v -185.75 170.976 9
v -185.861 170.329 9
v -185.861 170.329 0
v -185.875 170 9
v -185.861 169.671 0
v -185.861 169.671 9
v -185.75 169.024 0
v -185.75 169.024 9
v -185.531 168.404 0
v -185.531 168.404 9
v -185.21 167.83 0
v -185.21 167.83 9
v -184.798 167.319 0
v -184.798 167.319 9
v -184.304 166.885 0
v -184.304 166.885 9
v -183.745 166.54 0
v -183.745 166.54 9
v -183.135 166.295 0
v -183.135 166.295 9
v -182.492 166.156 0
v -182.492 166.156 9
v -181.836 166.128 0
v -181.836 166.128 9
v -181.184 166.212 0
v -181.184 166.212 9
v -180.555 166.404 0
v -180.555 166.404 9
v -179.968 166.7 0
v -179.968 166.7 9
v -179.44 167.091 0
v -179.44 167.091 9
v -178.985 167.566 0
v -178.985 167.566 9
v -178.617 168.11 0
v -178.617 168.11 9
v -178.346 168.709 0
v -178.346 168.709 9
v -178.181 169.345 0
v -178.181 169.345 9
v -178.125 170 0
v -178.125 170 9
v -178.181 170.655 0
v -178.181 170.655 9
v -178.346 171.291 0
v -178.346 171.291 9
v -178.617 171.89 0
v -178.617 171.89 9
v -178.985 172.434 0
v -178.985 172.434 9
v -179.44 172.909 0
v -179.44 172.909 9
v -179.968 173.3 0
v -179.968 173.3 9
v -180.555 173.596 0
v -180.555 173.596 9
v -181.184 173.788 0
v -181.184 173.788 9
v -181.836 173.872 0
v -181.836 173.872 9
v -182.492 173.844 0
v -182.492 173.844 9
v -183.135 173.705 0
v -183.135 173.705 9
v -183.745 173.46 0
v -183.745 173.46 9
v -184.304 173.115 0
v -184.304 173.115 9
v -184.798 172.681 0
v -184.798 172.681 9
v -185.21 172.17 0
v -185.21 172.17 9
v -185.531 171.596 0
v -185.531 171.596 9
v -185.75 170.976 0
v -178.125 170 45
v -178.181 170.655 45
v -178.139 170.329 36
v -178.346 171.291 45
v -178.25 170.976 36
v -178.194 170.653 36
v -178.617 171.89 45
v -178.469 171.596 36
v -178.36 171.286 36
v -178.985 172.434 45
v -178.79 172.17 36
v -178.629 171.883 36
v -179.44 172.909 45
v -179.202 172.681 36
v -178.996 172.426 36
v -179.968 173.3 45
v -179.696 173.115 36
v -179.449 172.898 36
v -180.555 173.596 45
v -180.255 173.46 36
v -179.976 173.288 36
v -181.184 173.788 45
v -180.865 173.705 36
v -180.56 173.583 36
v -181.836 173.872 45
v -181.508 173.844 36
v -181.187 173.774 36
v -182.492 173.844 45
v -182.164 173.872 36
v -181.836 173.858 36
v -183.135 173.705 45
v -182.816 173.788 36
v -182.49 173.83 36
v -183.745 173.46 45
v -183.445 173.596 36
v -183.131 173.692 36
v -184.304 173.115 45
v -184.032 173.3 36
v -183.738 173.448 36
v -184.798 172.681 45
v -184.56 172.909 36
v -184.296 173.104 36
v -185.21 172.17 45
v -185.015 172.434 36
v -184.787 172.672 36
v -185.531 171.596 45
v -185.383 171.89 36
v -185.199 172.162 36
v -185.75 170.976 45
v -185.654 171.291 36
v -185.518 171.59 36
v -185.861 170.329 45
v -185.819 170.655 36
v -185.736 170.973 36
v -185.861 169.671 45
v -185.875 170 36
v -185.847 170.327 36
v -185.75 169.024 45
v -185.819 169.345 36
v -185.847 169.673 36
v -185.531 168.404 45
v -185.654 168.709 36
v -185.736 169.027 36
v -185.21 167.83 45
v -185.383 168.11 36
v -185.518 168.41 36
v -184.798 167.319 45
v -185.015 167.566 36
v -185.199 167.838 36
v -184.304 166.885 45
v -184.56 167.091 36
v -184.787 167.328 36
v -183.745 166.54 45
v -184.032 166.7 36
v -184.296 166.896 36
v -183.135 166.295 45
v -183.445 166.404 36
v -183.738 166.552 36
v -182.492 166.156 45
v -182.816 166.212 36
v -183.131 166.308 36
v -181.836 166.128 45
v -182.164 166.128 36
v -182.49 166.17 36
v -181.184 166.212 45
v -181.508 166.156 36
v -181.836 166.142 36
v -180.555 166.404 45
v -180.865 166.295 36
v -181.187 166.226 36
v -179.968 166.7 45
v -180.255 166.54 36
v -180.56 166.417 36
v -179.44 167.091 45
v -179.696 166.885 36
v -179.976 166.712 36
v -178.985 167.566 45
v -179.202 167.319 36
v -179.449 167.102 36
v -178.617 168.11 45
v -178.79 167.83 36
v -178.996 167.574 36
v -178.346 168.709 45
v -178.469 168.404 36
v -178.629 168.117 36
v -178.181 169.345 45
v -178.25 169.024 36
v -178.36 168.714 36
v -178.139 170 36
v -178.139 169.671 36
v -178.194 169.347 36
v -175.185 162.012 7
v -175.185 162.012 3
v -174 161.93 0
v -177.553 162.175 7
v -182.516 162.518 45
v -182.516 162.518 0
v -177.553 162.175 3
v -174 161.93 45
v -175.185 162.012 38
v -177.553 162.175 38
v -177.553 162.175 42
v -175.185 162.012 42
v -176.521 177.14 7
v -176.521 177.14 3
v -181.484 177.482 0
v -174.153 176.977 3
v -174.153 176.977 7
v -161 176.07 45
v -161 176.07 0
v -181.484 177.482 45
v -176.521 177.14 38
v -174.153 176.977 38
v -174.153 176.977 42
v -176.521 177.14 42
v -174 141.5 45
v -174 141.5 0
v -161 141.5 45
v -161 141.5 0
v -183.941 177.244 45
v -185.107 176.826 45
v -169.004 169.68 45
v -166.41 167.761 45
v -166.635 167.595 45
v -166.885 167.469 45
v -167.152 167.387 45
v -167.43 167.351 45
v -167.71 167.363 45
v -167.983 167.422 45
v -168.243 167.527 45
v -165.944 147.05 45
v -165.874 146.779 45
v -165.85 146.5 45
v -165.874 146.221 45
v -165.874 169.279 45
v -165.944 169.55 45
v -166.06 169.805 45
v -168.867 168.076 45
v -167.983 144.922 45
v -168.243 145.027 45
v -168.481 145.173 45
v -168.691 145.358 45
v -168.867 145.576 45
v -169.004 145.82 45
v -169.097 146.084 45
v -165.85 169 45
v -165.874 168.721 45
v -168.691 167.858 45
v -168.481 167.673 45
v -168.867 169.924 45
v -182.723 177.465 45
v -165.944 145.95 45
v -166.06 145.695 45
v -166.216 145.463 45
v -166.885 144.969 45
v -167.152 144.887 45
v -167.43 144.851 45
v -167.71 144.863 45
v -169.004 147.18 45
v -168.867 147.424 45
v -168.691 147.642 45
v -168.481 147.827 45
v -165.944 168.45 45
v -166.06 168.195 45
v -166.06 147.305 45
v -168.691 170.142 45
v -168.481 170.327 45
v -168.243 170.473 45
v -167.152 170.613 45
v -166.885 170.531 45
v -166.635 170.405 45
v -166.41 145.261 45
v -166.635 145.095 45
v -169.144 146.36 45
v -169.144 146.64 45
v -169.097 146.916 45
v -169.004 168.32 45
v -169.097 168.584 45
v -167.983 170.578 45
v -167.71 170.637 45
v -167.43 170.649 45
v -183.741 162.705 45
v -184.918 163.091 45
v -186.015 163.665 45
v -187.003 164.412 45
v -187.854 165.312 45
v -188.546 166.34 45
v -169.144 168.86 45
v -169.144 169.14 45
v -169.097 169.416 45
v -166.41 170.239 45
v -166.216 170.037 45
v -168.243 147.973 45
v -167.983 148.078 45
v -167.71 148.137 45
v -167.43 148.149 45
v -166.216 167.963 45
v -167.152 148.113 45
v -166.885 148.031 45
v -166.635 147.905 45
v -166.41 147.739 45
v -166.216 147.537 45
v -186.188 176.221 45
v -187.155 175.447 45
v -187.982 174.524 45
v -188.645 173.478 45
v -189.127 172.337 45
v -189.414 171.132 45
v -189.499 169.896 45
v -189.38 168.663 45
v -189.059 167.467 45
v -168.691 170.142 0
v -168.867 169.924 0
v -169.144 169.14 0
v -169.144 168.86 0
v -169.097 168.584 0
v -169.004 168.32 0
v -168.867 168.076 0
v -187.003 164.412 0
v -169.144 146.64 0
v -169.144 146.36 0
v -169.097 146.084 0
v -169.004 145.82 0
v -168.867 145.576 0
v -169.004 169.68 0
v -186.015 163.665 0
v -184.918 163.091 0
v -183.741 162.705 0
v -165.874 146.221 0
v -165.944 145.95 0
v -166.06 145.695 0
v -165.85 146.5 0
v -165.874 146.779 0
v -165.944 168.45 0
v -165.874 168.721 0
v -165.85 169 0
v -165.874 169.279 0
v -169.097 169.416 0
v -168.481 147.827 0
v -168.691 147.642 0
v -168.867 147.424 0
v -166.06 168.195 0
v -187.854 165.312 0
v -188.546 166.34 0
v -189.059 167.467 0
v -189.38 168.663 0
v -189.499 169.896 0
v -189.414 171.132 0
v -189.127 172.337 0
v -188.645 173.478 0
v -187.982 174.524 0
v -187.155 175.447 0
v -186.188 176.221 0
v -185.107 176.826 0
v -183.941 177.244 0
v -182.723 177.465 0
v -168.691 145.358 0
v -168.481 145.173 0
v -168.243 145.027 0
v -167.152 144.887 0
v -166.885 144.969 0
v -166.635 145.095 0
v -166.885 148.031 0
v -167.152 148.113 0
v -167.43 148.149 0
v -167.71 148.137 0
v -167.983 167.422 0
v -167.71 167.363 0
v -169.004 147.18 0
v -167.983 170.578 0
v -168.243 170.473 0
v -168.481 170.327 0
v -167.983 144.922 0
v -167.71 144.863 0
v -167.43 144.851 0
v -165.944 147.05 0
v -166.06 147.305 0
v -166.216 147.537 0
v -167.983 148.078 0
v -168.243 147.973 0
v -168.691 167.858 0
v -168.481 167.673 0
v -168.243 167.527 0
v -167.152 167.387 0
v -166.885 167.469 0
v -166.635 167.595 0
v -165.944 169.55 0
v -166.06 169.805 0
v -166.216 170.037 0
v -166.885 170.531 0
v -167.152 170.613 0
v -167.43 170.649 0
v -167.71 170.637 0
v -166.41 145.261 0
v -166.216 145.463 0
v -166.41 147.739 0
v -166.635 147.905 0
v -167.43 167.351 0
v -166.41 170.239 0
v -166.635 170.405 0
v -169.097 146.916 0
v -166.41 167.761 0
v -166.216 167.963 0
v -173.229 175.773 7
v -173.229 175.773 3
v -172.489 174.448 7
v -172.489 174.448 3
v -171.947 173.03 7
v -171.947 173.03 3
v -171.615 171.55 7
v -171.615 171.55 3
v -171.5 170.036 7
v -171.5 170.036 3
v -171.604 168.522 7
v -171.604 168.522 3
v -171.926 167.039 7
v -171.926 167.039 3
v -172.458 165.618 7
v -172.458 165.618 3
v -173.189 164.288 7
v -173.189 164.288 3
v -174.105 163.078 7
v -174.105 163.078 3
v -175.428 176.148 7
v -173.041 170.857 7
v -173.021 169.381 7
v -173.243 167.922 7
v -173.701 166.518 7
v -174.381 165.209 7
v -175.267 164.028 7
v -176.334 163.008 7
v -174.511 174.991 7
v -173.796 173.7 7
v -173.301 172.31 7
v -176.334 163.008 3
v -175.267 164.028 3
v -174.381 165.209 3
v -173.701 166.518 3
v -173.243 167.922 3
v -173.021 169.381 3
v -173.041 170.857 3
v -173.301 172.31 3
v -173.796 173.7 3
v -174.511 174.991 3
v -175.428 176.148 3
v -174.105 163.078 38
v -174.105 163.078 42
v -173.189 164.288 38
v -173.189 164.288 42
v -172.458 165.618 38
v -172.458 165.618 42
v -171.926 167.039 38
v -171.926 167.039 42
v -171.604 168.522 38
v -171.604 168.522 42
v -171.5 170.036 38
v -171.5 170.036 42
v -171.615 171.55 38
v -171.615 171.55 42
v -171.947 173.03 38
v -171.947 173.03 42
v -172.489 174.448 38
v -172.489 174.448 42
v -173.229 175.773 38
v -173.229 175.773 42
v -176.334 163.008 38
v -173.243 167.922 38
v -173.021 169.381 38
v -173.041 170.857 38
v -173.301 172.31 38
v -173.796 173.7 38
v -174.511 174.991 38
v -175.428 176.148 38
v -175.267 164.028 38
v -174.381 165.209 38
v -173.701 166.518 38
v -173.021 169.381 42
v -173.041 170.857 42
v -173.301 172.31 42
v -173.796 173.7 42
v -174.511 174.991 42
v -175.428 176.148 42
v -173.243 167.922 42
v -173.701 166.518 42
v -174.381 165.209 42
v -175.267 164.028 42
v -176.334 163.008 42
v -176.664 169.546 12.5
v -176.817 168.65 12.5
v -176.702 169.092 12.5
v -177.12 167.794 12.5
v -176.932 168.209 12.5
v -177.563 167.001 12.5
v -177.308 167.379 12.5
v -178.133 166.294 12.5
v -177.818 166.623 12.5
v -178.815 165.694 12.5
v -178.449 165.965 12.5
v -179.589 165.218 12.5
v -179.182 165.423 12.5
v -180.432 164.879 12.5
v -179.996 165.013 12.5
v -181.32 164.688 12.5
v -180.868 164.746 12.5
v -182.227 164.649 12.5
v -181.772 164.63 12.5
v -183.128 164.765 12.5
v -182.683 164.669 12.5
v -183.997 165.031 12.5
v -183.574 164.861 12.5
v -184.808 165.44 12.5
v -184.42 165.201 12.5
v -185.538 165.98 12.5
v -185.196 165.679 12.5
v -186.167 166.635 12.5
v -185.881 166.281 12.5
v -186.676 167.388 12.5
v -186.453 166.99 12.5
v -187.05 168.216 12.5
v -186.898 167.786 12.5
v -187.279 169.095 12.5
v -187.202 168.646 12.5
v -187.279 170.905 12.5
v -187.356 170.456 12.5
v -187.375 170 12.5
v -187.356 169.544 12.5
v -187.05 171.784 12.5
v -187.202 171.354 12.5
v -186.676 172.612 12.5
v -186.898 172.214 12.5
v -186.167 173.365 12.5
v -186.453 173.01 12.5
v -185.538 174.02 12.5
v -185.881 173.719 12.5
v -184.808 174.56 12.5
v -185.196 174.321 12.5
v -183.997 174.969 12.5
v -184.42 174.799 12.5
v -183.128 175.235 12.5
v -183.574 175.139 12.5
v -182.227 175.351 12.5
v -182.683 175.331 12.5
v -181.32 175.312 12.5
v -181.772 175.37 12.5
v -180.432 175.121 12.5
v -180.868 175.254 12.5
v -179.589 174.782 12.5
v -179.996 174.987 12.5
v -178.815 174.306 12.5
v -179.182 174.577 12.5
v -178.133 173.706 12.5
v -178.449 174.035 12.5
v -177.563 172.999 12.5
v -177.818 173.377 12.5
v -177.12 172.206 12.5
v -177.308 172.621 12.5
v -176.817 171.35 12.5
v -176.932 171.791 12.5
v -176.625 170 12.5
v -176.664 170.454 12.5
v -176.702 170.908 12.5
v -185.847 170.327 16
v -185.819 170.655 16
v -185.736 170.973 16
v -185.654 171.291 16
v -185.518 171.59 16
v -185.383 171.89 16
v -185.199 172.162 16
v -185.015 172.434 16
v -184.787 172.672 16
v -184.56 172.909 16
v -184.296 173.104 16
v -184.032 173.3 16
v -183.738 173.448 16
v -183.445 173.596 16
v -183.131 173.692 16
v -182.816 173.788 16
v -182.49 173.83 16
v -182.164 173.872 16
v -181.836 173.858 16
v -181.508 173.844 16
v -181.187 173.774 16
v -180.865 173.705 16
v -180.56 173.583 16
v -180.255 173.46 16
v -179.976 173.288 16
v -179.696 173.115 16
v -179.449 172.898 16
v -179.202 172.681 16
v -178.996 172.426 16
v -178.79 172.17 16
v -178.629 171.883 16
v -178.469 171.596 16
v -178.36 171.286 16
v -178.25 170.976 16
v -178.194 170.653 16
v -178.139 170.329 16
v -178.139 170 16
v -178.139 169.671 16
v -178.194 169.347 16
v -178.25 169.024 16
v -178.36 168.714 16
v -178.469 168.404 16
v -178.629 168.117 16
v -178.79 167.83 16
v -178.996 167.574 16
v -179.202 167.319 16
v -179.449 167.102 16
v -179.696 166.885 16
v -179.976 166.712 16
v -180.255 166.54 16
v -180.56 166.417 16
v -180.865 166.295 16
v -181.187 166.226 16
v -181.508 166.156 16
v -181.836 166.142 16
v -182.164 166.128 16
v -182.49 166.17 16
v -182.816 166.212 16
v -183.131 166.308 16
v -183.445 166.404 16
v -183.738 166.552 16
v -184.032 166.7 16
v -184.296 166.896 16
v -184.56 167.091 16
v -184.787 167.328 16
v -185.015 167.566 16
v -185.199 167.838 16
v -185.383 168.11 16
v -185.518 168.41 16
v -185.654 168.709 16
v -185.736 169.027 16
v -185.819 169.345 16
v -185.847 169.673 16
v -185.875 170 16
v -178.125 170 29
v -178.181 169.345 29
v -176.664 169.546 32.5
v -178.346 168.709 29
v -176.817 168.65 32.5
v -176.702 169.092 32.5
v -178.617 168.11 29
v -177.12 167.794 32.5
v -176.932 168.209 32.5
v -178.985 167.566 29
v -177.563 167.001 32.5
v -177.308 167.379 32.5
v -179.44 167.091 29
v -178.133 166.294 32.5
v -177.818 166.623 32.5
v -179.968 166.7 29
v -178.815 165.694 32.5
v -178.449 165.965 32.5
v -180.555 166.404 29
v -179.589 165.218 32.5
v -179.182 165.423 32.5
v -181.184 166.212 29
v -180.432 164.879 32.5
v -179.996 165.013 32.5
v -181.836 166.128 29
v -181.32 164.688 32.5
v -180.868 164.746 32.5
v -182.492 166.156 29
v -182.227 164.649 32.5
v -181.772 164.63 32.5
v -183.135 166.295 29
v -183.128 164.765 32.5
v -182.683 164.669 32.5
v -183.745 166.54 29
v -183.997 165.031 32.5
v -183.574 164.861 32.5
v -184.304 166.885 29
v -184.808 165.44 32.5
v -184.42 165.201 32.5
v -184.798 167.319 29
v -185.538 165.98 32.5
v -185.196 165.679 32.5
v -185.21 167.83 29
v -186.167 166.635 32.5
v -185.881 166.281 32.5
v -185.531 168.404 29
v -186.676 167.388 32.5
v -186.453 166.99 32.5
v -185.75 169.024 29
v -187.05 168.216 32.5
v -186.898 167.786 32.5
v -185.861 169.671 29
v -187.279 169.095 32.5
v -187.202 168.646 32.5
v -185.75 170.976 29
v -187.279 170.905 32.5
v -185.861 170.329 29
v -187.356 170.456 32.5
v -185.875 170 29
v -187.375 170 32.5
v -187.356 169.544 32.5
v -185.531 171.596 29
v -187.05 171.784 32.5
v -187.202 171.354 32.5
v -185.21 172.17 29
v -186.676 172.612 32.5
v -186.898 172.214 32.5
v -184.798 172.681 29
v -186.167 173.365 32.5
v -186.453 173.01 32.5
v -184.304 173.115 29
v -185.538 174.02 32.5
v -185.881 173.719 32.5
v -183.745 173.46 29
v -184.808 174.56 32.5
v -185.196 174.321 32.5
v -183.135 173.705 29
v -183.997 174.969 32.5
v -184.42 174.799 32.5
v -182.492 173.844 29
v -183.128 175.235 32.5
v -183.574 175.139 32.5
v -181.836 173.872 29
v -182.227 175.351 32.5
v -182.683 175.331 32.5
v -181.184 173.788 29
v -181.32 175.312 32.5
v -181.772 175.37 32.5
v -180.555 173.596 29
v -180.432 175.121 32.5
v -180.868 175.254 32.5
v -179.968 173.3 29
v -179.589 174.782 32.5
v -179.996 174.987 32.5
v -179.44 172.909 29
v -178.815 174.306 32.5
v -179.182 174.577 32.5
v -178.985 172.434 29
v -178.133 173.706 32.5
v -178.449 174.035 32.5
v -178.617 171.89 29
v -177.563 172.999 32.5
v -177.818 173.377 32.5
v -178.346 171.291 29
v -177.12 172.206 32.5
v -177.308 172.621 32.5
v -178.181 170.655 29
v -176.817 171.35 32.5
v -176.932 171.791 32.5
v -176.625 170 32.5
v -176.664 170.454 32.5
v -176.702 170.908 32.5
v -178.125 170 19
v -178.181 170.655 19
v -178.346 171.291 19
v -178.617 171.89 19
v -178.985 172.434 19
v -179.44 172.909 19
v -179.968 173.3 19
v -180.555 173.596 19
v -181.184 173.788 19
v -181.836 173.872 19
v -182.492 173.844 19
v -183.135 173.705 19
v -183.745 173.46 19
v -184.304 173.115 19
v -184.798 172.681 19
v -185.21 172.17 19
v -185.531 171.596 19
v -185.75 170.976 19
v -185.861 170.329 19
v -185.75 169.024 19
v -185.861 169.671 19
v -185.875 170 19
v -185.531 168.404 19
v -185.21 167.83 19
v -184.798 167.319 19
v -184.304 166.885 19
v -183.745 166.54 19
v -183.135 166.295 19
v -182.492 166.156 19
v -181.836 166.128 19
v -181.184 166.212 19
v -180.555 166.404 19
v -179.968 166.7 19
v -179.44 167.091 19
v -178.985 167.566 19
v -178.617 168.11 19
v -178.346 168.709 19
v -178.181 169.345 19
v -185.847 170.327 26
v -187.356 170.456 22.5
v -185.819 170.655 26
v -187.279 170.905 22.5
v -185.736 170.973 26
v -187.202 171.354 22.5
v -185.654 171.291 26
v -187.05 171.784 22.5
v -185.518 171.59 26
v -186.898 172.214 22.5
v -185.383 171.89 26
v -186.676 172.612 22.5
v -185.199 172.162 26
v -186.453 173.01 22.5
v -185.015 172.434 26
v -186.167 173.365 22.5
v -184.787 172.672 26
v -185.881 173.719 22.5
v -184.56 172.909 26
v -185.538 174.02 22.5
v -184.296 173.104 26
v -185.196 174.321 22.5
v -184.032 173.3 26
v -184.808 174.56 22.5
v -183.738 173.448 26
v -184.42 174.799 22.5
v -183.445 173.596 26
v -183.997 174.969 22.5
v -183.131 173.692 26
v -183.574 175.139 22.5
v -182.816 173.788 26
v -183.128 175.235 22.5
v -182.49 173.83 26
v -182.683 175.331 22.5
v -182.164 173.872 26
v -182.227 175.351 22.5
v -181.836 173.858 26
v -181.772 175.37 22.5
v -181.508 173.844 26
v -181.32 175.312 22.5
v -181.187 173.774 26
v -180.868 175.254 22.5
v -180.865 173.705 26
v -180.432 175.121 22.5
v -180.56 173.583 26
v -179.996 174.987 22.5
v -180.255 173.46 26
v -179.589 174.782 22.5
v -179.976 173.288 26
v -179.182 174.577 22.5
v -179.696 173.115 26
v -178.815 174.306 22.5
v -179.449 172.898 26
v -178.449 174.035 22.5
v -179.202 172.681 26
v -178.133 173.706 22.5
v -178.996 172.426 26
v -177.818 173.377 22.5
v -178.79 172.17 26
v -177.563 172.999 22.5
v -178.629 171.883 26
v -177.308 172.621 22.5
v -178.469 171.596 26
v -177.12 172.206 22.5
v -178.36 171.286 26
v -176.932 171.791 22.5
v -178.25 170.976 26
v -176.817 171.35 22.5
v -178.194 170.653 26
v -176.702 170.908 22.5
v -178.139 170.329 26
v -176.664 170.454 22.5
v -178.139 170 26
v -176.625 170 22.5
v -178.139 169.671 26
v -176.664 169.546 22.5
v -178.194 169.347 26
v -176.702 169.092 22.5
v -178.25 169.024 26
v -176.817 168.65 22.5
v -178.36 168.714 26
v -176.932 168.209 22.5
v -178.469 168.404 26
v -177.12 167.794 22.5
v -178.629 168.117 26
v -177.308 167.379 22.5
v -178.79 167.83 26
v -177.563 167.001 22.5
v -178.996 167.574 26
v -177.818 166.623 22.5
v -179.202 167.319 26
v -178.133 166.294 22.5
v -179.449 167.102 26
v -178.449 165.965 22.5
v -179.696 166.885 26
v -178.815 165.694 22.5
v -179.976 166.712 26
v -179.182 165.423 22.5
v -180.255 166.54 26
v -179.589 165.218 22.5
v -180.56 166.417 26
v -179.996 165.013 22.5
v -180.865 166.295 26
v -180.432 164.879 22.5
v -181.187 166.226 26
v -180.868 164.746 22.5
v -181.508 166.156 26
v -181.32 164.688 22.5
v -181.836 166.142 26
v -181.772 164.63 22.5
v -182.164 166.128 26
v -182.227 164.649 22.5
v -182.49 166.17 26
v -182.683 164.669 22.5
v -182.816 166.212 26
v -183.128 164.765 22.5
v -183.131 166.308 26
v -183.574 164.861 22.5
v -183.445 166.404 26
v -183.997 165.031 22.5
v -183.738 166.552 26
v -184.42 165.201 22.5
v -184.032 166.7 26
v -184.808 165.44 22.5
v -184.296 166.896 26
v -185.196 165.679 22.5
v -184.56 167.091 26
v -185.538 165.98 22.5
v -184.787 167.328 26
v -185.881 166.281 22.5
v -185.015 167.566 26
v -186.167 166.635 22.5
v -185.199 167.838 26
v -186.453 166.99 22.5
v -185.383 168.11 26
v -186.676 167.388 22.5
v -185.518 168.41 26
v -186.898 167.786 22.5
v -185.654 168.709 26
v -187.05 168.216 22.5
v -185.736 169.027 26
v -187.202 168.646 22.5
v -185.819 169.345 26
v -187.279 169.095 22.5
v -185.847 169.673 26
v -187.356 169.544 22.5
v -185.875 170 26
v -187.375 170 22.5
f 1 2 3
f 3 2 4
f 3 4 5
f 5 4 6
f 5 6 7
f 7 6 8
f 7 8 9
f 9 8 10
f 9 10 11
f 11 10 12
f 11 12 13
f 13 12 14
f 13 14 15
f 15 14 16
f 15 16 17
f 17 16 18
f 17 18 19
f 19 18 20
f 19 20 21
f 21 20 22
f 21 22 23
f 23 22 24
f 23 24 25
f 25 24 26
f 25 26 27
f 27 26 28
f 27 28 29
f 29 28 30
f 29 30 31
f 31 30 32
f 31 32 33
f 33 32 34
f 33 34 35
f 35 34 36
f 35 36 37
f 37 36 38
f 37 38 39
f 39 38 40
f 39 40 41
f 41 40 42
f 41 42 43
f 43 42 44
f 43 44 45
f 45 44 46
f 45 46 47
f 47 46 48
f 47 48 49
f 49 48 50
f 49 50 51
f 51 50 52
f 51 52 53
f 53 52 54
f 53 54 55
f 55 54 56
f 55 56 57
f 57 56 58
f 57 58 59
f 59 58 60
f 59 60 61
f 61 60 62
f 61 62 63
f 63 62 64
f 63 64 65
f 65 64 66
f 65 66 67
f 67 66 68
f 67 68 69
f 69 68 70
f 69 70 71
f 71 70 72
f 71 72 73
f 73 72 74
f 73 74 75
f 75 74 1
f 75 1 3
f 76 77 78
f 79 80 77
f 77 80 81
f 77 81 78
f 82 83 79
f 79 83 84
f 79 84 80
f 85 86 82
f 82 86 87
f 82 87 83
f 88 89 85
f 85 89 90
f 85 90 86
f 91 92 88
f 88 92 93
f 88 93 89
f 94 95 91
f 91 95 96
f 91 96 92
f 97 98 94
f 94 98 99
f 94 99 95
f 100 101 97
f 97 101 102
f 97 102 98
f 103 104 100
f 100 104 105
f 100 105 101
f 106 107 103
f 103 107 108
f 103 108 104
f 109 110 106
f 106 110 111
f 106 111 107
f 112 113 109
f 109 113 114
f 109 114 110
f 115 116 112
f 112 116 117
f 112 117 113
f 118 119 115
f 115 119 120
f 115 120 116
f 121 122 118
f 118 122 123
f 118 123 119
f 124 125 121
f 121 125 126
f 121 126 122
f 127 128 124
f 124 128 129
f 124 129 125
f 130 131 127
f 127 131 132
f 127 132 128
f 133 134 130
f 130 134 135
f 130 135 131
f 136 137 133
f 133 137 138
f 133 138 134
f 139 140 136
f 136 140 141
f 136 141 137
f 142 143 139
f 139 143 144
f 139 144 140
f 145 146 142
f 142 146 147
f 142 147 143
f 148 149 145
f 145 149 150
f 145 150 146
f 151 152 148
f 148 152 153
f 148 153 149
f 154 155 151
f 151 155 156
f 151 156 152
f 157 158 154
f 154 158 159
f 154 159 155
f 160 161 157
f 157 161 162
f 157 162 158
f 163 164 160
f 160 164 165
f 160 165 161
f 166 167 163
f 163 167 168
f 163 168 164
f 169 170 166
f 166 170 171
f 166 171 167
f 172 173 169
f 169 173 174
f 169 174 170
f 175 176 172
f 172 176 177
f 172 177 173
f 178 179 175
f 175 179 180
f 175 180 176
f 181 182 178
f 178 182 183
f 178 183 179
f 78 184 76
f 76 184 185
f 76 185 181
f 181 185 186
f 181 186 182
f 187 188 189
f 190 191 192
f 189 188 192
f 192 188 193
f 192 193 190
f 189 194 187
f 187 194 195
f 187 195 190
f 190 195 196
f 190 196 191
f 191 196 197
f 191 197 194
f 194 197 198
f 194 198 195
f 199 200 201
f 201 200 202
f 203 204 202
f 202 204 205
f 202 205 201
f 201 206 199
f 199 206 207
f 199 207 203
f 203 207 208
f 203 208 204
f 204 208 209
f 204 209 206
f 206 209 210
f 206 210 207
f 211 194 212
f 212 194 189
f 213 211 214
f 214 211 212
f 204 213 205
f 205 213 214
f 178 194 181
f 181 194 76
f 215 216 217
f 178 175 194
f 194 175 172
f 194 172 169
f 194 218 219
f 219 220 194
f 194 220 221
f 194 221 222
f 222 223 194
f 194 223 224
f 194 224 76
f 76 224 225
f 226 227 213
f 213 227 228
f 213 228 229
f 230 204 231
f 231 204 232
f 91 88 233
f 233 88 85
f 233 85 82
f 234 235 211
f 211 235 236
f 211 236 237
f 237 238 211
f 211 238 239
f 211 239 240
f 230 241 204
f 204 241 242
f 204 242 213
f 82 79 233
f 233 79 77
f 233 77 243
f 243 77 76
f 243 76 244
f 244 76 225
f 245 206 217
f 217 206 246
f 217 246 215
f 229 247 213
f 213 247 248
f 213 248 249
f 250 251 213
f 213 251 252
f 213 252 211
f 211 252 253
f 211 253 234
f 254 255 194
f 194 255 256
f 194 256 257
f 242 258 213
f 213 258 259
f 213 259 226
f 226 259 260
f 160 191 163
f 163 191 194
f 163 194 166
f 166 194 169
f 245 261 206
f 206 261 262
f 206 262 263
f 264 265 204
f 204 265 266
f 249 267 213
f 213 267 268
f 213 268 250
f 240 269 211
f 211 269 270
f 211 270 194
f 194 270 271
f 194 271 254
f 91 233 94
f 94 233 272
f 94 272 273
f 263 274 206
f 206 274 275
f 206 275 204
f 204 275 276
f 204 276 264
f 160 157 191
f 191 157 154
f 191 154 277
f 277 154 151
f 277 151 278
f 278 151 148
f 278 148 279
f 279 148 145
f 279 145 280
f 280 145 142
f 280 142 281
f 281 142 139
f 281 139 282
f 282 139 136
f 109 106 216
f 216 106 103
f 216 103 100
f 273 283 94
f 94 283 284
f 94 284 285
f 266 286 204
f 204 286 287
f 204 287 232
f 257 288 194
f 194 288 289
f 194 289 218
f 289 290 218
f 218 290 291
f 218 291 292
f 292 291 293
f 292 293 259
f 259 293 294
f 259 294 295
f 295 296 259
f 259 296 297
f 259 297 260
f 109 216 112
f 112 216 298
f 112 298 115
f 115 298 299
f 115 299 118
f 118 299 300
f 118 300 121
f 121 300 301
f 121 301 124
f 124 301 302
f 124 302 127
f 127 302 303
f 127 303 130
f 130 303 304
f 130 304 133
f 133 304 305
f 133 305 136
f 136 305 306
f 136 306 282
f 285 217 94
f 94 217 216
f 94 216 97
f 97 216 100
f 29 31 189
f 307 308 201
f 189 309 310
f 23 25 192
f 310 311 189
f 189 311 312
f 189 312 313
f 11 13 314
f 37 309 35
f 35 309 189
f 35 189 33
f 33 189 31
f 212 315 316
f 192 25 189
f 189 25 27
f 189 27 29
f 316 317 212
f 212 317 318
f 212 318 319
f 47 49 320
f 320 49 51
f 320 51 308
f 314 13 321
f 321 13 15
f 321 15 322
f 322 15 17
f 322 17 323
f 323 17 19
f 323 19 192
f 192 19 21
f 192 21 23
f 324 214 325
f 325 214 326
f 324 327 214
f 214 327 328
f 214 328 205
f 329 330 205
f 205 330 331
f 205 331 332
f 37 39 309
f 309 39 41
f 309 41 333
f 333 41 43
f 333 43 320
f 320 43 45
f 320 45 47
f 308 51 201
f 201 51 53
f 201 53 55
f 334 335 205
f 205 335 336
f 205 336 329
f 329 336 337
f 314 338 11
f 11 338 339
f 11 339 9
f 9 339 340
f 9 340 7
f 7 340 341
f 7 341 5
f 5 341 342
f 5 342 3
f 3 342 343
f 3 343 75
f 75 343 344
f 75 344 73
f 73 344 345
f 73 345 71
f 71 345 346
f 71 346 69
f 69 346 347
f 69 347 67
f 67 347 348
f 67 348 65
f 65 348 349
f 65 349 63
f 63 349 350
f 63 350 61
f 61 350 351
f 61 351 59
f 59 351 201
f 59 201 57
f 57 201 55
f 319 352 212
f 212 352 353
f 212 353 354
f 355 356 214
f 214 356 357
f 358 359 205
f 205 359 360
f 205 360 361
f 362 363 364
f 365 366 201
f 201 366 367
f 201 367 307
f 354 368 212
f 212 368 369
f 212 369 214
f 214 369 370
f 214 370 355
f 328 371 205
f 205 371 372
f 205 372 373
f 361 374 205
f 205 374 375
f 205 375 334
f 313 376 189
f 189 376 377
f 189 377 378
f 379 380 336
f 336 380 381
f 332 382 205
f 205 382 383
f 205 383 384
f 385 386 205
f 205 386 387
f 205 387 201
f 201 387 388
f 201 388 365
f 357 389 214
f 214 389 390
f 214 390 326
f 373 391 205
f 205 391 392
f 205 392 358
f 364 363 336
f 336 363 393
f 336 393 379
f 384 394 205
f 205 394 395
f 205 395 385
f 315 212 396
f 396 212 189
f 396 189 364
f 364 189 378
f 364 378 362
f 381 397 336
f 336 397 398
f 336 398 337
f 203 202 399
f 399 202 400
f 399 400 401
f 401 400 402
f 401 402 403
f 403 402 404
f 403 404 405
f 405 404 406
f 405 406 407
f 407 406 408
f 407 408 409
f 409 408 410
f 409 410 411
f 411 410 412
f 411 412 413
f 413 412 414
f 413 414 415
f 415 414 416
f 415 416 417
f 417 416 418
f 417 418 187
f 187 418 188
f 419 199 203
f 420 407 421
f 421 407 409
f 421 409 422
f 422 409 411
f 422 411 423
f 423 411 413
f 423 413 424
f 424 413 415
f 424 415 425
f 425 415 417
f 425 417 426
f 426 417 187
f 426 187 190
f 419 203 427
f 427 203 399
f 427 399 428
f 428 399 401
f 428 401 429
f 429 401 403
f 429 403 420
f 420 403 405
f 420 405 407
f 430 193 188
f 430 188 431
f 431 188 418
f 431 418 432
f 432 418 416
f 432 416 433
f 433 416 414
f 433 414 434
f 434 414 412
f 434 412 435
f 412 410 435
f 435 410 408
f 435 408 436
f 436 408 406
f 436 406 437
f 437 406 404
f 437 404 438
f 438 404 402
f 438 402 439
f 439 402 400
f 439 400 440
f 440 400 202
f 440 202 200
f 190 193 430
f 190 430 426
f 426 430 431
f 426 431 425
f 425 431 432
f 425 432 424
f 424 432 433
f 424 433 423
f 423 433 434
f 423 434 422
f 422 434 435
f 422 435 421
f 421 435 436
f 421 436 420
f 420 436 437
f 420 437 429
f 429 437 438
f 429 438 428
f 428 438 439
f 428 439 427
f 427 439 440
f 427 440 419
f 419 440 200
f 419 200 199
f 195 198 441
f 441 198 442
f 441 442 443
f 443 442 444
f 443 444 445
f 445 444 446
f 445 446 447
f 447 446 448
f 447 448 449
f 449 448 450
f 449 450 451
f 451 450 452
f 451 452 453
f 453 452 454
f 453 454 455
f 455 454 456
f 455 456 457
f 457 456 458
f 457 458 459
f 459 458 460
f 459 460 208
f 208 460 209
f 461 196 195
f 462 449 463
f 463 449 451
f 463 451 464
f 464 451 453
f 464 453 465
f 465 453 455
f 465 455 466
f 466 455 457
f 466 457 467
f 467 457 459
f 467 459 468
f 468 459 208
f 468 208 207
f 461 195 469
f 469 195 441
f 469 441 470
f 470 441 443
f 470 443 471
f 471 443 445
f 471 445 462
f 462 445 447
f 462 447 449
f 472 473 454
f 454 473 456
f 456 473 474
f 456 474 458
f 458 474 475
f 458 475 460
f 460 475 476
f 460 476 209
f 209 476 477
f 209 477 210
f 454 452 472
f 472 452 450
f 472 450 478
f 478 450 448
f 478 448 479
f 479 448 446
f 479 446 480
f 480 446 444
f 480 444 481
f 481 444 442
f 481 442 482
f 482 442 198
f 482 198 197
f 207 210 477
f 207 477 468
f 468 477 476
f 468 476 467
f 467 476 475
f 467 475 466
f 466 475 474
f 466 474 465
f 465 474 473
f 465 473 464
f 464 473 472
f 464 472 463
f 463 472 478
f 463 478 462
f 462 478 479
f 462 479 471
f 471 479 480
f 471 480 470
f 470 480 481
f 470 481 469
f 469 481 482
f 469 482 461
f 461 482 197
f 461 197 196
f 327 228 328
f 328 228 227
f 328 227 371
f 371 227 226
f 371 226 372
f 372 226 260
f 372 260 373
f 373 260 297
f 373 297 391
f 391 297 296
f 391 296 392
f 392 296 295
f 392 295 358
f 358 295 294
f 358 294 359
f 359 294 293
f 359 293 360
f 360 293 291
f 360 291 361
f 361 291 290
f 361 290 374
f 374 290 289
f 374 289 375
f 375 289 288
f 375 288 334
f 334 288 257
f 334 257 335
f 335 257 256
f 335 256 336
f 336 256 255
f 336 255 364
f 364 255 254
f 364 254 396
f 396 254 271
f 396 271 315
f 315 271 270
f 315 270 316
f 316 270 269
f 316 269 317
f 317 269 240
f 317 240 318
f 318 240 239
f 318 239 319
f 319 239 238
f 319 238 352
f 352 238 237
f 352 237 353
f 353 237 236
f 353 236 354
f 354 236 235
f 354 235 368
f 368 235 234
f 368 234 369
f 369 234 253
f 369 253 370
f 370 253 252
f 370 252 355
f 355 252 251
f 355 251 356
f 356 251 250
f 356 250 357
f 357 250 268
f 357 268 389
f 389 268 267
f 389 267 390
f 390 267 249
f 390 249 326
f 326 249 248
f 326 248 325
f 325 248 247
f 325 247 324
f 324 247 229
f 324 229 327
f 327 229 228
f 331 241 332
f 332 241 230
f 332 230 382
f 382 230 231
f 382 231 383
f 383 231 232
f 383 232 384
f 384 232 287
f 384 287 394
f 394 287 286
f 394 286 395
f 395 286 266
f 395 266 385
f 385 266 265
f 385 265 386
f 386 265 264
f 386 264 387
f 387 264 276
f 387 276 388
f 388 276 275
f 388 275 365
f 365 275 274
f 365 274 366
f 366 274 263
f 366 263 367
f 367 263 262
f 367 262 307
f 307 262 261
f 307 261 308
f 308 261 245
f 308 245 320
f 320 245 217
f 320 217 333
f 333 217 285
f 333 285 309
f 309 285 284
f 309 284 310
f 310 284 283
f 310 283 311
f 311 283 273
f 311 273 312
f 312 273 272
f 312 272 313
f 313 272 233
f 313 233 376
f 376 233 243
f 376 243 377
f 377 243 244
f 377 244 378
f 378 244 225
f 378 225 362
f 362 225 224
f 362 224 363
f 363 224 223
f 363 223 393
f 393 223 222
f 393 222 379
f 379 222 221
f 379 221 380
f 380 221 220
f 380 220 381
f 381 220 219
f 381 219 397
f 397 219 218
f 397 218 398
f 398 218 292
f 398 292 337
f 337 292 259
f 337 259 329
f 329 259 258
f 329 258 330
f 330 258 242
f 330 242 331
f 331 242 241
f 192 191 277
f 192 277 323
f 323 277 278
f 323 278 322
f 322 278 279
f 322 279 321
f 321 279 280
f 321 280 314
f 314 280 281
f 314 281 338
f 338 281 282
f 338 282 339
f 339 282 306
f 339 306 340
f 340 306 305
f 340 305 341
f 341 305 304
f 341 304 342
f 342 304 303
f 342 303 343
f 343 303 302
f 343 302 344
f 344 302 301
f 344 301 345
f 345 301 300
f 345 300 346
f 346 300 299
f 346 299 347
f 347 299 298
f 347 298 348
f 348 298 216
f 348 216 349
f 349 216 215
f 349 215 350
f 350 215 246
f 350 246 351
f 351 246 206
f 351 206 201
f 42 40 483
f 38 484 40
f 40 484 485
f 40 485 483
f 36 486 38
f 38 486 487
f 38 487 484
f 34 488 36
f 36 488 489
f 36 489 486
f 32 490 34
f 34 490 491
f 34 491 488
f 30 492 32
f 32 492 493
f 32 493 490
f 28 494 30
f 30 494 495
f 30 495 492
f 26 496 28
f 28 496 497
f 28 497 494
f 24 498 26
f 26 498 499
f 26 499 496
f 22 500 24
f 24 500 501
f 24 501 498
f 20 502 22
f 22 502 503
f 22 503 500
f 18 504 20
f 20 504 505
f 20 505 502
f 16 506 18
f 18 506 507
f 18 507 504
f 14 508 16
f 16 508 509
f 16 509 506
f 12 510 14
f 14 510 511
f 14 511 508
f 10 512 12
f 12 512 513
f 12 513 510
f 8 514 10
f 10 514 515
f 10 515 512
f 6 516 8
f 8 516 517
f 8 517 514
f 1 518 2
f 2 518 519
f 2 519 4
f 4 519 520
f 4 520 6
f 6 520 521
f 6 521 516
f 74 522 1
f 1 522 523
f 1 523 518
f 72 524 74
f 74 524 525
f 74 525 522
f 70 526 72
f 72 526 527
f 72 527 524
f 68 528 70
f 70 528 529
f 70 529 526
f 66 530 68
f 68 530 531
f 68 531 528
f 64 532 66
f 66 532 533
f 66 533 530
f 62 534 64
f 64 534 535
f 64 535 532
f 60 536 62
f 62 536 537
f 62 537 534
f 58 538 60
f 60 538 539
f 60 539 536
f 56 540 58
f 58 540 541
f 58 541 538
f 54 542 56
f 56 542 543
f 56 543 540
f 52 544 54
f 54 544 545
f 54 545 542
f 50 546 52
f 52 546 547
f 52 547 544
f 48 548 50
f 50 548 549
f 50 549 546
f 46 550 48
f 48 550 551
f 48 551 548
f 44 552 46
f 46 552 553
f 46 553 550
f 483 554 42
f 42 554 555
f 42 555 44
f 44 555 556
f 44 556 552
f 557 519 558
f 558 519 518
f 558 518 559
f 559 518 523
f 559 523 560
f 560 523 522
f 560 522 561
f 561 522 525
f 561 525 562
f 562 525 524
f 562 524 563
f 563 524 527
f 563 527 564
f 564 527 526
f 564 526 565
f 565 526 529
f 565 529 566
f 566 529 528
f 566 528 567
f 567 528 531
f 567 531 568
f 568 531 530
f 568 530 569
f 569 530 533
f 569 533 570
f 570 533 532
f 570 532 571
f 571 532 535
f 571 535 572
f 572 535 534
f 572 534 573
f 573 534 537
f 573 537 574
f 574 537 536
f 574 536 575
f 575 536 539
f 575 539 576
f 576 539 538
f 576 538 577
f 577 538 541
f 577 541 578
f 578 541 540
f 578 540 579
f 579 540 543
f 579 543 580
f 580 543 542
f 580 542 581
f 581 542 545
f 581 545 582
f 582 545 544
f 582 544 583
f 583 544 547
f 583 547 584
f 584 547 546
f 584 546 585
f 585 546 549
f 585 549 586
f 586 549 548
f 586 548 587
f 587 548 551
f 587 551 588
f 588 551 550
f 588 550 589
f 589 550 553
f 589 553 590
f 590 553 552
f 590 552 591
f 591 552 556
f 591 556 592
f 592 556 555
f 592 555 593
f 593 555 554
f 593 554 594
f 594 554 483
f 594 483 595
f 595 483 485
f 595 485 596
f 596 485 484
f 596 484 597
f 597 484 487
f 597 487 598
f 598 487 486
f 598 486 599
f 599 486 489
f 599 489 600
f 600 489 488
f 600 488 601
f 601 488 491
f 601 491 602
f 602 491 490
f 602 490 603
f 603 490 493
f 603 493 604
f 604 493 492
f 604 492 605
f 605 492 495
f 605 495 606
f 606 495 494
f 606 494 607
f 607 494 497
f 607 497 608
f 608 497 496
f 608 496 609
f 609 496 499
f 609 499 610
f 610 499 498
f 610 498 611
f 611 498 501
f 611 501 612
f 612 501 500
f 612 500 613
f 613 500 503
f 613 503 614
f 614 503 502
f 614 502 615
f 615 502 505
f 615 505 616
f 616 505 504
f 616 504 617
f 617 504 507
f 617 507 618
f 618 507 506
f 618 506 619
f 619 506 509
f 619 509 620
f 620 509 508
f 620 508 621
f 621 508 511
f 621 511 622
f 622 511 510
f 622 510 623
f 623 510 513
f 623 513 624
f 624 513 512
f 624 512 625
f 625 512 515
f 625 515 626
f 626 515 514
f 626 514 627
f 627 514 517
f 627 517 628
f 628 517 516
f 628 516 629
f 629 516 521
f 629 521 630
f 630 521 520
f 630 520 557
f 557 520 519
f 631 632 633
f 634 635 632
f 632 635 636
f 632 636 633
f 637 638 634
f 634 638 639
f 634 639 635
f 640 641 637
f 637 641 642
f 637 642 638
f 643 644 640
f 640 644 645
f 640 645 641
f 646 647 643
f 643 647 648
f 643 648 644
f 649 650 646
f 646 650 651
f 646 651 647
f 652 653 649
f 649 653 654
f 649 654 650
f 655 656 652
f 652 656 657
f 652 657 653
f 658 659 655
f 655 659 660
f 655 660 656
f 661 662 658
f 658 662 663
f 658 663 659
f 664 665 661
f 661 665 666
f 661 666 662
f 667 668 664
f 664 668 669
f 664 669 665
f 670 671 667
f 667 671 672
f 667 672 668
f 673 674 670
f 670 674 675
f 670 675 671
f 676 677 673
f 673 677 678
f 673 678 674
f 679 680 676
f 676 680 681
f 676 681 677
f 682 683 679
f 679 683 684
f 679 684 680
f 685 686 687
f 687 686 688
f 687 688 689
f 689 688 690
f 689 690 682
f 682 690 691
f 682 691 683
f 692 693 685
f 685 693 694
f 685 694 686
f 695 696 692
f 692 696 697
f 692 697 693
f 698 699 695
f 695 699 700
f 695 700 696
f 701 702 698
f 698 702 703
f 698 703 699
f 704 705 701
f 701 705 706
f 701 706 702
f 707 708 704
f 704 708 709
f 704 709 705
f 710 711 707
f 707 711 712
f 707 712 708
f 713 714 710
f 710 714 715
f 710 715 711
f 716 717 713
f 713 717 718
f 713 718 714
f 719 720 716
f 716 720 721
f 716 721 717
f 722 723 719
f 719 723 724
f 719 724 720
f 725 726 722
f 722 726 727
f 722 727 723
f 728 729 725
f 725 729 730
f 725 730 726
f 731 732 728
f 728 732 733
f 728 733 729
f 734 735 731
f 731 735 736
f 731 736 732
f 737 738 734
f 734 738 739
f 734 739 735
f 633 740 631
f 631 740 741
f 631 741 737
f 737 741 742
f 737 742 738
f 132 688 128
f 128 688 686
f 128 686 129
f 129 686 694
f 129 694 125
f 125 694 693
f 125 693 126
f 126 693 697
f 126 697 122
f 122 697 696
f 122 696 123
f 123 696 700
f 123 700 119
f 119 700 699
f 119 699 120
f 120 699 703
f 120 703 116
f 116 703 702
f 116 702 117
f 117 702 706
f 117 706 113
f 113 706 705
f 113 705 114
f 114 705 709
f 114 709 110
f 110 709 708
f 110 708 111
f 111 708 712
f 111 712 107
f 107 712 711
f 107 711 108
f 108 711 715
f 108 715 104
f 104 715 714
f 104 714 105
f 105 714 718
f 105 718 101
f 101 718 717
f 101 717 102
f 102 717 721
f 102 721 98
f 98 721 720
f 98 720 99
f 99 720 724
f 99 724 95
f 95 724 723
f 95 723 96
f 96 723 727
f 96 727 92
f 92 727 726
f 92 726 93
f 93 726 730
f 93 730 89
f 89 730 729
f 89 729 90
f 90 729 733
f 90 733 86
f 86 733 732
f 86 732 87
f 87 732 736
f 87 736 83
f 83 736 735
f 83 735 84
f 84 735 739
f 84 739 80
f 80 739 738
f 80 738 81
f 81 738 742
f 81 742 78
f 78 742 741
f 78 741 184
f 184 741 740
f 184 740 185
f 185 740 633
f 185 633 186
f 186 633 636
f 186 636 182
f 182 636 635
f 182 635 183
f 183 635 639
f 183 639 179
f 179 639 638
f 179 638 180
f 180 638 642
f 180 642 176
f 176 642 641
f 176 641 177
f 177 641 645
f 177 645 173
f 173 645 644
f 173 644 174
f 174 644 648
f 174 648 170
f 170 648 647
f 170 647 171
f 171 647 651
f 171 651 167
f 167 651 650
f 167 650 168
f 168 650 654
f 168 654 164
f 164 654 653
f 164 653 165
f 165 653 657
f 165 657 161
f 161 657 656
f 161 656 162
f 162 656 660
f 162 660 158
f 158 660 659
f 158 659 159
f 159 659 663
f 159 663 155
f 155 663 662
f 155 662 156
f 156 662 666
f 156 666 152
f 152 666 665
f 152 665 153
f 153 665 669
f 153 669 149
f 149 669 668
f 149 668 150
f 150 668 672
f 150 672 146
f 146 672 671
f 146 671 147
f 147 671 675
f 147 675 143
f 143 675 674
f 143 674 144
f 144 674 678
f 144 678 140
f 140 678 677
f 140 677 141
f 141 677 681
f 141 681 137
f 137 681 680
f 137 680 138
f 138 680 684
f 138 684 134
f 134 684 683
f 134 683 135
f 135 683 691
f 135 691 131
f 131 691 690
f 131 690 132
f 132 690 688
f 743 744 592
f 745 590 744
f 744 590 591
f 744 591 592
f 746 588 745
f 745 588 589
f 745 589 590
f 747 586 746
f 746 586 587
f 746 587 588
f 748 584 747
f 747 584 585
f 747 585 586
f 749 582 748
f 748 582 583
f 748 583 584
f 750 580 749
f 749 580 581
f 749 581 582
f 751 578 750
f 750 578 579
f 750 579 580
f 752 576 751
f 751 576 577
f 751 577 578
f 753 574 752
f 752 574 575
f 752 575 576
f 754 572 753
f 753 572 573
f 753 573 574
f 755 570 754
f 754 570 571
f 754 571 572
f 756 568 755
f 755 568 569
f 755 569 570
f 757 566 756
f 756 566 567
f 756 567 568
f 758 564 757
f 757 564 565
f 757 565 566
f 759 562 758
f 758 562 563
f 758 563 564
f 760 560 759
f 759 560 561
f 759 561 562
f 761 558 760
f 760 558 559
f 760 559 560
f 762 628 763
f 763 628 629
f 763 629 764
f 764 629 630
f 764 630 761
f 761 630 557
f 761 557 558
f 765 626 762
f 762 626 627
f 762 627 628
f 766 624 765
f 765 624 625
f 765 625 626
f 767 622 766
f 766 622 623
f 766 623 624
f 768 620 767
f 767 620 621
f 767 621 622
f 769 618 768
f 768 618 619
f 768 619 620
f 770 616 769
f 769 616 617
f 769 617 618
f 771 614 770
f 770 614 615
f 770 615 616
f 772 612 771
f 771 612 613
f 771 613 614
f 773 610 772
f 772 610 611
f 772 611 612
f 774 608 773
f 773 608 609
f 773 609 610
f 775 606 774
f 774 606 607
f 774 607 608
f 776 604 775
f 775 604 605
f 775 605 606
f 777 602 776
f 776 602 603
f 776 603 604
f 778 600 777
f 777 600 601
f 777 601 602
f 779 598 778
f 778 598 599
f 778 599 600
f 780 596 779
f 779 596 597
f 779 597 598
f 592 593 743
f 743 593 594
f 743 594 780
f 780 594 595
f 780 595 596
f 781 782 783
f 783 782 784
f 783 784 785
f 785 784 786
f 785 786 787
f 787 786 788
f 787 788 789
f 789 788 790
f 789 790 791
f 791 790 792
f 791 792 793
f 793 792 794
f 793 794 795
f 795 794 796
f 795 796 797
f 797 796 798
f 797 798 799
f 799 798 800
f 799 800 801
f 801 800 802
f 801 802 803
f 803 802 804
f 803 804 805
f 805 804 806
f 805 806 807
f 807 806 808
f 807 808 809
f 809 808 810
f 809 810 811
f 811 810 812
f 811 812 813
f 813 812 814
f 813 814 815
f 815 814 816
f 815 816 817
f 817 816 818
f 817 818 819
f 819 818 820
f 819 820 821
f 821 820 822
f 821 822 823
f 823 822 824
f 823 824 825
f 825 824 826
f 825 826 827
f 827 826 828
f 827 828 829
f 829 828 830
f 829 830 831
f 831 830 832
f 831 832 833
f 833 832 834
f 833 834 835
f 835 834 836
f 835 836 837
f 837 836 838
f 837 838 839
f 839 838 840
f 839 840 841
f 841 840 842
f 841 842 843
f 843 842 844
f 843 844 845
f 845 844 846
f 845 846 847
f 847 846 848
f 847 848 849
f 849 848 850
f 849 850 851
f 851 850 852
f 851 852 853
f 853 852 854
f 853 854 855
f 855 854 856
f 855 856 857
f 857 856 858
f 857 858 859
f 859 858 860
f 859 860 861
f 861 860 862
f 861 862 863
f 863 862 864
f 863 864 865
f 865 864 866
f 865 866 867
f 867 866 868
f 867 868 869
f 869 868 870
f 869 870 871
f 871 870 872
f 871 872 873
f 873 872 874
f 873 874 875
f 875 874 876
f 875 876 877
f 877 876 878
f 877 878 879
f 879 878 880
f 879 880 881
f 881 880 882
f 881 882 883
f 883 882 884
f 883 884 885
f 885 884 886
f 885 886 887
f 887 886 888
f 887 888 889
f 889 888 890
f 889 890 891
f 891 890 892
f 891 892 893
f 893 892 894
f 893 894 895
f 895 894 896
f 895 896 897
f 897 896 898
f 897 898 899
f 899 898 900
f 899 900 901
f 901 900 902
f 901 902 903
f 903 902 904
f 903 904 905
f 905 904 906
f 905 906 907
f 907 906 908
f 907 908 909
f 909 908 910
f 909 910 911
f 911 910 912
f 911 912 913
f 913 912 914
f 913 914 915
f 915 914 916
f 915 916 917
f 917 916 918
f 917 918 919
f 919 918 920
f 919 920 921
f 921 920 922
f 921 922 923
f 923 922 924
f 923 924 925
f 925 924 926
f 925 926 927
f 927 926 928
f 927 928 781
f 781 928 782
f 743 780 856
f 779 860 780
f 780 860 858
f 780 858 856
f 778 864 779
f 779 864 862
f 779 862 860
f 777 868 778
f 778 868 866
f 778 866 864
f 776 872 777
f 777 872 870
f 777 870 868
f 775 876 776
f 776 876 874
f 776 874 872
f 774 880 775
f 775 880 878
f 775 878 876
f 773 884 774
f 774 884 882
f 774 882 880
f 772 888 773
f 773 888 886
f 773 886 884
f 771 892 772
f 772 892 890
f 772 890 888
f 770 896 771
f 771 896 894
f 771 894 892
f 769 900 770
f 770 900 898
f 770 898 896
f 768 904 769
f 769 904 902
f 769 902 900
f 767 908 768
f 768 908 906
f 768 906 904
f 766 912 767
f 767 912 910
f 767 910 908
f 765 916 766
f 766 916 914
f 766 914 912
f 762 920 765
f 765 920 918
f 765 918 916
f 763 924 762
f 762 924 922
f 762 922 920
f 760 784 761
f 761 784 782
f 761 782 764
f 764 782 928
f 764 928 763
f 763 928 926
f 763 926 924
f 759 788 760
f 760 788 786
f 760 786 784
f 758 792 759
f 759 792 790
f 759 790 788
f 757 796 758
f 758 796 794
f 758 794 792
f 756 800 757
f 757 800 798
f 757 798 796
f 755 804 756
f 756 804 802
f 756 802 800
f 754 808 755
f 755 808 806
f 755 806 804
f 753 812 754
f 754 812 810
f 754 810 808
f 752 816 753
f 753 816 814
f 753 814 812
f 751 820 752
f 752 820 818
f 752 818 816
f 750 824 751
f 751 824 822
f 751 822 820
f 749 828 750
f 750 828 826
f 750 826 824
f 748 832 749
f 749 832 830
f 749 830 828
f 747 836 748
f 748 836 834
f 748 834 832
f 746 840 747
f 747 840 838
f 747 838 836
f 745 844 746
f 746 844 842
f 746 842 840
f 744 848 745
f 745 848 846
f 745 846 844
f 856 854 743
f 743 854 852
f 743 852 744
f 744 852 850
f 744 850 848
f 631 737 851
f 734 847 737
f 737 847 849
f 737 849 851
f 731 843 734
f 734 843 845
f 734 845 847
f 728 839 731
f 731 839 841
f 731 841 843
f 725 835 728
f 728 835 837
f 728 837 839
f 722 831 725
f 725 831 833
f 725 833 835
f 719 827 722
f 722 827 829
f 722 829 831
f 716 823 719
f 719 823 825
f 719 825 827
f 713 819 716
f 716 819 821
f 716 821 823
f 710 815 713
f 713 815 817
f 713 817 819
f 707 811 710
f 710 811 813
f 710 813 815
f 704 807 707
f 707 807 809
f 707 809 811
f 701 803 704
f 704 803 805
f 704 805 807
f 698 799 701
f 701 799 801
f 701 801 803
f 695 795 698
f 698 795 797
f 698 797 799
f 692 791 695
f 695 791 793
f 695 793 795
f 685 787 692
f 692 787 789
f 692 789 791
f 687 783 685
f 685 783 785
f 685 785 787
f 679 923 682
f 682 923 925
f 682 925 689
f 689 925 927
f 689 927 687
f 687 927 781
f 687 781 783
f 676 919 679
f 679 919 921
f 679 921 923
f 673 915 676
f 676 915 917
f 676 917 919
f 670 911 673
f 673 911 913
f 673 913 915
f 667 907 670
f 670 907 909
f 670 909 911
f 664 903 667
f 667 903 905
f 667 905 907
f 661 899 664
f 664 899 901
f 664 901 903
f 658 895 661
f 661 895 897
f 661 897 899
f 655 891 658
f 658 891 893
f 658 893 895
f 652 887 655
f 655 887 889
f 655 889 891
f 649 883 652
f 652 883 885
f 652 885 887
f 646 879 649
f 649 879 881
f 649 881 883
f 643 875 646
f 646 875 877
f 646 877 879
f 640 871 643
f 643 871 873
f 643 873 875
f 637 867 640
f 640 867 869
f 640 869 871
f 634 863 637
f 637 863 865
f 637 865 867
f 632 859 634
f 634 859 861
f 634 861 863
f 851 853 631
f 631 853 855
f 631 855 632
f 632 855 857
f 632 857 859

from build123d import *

# Parameters (mm, degrees)
BOSS_EXTRUDE1_DEPTH   = 45
CUT_EXTRUDE1_START    = -5
CUT_EXTRUDE1_DEPTH    = 2
M4X0_7_TAPPED_HOLE1_D = 3.3
SKETCH5_R             = 7.5
BOSS_EXTRUDE2_DEPTH   = 45
SKETCH6_R             = 3.875
CUT_EXTRUDE2_DEPTH    = 46


with BuildPart() as part:
    # Sketch1 → Boss-Extrude1 (new body)
    with BuildSketch(Plane.XY):
        with BuildLine():
            Line((-182.516015687, 162.517772537), (-174, 161.93046111))
            Line((-174, 161.93046111), (-174, 141.5))
            Line((-174, 141.5), (-161, 141.5))
            Line((-161, 141.5), (-161, 176.06953889))
            Line((-161, 176.06953889), (-181.483984313, 177.482227463))
            ThreePointArc((-181.483984313, 177.482227463), (-174.517772537, 169.483984313), (-182.516015687, 162.517772537))
        make_face()
    extrude(amount=BOSS_EXTRUDE1_DEPTH)

    # Sketch2 → Cut-Extrude1 (cut, symmetric)
    with BuildSketch(Plane(origin=(0, 0, 0), x_dir=(-1, 0, 0), z_dir=(0, 0, -1)).offset(CUT_EXTRUDE1_START)):
        with BuildLine():
            ThreePointArc((176.520836095, 177.139941379), (173.021327044, 169.380781175), (177.552867469, 162.175486453))
            ThreePointArc((177.552867469, 162.175486453), (177.834315887, 161.15284928), (176.811678714, 160.871400862))
            ThreePointArc((176.811678714, 160.871400862), (171.524881552, 169.277578038), (175.60764211, 178.329931609))
            ThreePointArc((175.60764211, 178.329931609), (176.659234217, 178.191533486), (176.520836095, 177.139941379))
        make_face()
    cut_extrude1 = extrude(amount=CUT_EXTRUDE1_DEPTH, both=True, mode=Mode.SUBTRACT)

    # Mirror1: Cut-Extrude1 across plane
    add(cut_extrude1.mirror(Plane(origin=(0, 0, 22.5), x_dir=(1, 0, 0), z_dir=(0, 0, -1))), mode=Mode.SUBTRACT)

    # M4x0.7 Tapped Hole1 (through all)
    with Locations(Plane.XY.offset(45)):
        with Locations((-167.5, 169), (-167.5, 146.5)):
            Hole(M4X0_7_TAPPED_HOLE1_D / 2)

    # Sketch5 → Boss-Extrude2 (add, through all)
    with BuildSketch(Plane.XY.offset(45)):
        with Locations((-182, 170)):
            Circle(SKETCH5_R)
    extrude(amount=-BOSS_EXTRUDE2_DEPTH)

    # Sketch6 → Cut-Extrude2 (cut, through all)
    with BuildSketch(Plane.XY.offset(45)):
        with Locations((-182, 170)):
            Circle(SKETCH6_R)
    extrude(amount=-CUT_EXTRUDE2_DEPTH, mode=Mode.SUBTRACT)

    # Sketch9 → Cut-Revolve1 (revolve, cut)
    with BuildSketch(Plane(origin=(10.807100592, 156.70295858, 0), x_dir=(-0.997630328, 0.068802092, 0), z_dir=(-0.068802092, -0.997630328, 0))):
        Polygon((189.390075348, -9), (187.890075348, -12.5), (189.390075348, -16), align=None)
        Polygon((189.390075348, -19), (189.390075348, -26), (187.890075348, -22.5), align=None)
        Polygon((189.390075348, -29), (189.390075348, -36), (187.890075348, -32.5), align=None)
    revolve(axis=Axis((-182, 170, 0), (0, 0, 1)), mode=Mode.SUBTRACT)


solid = part.part
